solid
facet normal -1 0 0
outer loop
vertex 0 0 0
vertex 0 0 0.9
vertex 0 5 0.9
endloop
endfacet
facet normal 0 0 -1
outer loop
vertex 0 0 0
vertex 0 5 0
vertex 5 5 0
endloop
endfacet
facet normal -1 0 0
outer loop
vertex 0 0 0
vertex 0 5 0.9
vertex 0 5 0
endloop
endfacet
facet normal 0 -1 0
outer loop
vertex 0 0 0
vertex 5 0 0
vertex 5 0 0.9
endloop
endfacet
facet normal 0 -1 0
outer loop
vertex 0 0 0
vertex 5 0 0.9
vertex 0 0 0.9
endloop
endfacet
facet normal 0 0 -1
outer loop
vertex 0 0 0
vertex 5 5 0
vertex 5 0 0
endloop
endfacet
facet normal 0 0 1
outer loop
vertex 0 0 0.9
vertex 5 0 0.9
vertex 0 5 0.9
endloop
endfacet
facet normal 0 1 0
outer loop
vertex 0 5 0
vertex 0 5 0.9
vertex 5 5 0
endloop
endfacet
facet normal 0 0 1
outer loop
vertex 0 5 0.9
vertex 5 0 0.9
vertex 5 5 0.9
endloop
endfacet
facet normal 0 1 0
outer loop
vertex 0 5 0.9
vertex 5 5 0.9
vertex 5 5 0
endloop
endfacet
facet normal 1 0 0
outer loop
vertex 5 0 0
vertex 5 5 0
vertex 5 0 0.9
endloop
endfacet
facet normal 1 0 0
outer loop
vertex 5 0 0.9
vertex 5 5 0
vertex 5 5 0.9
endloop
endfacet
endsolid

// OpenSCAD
/* Warning, this is a very basic generator with a lot of approximation 
input data : [VQFN, PRA, 5x5x0.9mm, 32, , A, C04-01268A]
generated by com.zoubworld.electronics.cad.model3d.Basic
Date : Sun Feb 15 10:50:49 CET 2026
*/

//body
color("black")
translate([0,0,0])
cube([5.0,5.0,0.9], center=false);
